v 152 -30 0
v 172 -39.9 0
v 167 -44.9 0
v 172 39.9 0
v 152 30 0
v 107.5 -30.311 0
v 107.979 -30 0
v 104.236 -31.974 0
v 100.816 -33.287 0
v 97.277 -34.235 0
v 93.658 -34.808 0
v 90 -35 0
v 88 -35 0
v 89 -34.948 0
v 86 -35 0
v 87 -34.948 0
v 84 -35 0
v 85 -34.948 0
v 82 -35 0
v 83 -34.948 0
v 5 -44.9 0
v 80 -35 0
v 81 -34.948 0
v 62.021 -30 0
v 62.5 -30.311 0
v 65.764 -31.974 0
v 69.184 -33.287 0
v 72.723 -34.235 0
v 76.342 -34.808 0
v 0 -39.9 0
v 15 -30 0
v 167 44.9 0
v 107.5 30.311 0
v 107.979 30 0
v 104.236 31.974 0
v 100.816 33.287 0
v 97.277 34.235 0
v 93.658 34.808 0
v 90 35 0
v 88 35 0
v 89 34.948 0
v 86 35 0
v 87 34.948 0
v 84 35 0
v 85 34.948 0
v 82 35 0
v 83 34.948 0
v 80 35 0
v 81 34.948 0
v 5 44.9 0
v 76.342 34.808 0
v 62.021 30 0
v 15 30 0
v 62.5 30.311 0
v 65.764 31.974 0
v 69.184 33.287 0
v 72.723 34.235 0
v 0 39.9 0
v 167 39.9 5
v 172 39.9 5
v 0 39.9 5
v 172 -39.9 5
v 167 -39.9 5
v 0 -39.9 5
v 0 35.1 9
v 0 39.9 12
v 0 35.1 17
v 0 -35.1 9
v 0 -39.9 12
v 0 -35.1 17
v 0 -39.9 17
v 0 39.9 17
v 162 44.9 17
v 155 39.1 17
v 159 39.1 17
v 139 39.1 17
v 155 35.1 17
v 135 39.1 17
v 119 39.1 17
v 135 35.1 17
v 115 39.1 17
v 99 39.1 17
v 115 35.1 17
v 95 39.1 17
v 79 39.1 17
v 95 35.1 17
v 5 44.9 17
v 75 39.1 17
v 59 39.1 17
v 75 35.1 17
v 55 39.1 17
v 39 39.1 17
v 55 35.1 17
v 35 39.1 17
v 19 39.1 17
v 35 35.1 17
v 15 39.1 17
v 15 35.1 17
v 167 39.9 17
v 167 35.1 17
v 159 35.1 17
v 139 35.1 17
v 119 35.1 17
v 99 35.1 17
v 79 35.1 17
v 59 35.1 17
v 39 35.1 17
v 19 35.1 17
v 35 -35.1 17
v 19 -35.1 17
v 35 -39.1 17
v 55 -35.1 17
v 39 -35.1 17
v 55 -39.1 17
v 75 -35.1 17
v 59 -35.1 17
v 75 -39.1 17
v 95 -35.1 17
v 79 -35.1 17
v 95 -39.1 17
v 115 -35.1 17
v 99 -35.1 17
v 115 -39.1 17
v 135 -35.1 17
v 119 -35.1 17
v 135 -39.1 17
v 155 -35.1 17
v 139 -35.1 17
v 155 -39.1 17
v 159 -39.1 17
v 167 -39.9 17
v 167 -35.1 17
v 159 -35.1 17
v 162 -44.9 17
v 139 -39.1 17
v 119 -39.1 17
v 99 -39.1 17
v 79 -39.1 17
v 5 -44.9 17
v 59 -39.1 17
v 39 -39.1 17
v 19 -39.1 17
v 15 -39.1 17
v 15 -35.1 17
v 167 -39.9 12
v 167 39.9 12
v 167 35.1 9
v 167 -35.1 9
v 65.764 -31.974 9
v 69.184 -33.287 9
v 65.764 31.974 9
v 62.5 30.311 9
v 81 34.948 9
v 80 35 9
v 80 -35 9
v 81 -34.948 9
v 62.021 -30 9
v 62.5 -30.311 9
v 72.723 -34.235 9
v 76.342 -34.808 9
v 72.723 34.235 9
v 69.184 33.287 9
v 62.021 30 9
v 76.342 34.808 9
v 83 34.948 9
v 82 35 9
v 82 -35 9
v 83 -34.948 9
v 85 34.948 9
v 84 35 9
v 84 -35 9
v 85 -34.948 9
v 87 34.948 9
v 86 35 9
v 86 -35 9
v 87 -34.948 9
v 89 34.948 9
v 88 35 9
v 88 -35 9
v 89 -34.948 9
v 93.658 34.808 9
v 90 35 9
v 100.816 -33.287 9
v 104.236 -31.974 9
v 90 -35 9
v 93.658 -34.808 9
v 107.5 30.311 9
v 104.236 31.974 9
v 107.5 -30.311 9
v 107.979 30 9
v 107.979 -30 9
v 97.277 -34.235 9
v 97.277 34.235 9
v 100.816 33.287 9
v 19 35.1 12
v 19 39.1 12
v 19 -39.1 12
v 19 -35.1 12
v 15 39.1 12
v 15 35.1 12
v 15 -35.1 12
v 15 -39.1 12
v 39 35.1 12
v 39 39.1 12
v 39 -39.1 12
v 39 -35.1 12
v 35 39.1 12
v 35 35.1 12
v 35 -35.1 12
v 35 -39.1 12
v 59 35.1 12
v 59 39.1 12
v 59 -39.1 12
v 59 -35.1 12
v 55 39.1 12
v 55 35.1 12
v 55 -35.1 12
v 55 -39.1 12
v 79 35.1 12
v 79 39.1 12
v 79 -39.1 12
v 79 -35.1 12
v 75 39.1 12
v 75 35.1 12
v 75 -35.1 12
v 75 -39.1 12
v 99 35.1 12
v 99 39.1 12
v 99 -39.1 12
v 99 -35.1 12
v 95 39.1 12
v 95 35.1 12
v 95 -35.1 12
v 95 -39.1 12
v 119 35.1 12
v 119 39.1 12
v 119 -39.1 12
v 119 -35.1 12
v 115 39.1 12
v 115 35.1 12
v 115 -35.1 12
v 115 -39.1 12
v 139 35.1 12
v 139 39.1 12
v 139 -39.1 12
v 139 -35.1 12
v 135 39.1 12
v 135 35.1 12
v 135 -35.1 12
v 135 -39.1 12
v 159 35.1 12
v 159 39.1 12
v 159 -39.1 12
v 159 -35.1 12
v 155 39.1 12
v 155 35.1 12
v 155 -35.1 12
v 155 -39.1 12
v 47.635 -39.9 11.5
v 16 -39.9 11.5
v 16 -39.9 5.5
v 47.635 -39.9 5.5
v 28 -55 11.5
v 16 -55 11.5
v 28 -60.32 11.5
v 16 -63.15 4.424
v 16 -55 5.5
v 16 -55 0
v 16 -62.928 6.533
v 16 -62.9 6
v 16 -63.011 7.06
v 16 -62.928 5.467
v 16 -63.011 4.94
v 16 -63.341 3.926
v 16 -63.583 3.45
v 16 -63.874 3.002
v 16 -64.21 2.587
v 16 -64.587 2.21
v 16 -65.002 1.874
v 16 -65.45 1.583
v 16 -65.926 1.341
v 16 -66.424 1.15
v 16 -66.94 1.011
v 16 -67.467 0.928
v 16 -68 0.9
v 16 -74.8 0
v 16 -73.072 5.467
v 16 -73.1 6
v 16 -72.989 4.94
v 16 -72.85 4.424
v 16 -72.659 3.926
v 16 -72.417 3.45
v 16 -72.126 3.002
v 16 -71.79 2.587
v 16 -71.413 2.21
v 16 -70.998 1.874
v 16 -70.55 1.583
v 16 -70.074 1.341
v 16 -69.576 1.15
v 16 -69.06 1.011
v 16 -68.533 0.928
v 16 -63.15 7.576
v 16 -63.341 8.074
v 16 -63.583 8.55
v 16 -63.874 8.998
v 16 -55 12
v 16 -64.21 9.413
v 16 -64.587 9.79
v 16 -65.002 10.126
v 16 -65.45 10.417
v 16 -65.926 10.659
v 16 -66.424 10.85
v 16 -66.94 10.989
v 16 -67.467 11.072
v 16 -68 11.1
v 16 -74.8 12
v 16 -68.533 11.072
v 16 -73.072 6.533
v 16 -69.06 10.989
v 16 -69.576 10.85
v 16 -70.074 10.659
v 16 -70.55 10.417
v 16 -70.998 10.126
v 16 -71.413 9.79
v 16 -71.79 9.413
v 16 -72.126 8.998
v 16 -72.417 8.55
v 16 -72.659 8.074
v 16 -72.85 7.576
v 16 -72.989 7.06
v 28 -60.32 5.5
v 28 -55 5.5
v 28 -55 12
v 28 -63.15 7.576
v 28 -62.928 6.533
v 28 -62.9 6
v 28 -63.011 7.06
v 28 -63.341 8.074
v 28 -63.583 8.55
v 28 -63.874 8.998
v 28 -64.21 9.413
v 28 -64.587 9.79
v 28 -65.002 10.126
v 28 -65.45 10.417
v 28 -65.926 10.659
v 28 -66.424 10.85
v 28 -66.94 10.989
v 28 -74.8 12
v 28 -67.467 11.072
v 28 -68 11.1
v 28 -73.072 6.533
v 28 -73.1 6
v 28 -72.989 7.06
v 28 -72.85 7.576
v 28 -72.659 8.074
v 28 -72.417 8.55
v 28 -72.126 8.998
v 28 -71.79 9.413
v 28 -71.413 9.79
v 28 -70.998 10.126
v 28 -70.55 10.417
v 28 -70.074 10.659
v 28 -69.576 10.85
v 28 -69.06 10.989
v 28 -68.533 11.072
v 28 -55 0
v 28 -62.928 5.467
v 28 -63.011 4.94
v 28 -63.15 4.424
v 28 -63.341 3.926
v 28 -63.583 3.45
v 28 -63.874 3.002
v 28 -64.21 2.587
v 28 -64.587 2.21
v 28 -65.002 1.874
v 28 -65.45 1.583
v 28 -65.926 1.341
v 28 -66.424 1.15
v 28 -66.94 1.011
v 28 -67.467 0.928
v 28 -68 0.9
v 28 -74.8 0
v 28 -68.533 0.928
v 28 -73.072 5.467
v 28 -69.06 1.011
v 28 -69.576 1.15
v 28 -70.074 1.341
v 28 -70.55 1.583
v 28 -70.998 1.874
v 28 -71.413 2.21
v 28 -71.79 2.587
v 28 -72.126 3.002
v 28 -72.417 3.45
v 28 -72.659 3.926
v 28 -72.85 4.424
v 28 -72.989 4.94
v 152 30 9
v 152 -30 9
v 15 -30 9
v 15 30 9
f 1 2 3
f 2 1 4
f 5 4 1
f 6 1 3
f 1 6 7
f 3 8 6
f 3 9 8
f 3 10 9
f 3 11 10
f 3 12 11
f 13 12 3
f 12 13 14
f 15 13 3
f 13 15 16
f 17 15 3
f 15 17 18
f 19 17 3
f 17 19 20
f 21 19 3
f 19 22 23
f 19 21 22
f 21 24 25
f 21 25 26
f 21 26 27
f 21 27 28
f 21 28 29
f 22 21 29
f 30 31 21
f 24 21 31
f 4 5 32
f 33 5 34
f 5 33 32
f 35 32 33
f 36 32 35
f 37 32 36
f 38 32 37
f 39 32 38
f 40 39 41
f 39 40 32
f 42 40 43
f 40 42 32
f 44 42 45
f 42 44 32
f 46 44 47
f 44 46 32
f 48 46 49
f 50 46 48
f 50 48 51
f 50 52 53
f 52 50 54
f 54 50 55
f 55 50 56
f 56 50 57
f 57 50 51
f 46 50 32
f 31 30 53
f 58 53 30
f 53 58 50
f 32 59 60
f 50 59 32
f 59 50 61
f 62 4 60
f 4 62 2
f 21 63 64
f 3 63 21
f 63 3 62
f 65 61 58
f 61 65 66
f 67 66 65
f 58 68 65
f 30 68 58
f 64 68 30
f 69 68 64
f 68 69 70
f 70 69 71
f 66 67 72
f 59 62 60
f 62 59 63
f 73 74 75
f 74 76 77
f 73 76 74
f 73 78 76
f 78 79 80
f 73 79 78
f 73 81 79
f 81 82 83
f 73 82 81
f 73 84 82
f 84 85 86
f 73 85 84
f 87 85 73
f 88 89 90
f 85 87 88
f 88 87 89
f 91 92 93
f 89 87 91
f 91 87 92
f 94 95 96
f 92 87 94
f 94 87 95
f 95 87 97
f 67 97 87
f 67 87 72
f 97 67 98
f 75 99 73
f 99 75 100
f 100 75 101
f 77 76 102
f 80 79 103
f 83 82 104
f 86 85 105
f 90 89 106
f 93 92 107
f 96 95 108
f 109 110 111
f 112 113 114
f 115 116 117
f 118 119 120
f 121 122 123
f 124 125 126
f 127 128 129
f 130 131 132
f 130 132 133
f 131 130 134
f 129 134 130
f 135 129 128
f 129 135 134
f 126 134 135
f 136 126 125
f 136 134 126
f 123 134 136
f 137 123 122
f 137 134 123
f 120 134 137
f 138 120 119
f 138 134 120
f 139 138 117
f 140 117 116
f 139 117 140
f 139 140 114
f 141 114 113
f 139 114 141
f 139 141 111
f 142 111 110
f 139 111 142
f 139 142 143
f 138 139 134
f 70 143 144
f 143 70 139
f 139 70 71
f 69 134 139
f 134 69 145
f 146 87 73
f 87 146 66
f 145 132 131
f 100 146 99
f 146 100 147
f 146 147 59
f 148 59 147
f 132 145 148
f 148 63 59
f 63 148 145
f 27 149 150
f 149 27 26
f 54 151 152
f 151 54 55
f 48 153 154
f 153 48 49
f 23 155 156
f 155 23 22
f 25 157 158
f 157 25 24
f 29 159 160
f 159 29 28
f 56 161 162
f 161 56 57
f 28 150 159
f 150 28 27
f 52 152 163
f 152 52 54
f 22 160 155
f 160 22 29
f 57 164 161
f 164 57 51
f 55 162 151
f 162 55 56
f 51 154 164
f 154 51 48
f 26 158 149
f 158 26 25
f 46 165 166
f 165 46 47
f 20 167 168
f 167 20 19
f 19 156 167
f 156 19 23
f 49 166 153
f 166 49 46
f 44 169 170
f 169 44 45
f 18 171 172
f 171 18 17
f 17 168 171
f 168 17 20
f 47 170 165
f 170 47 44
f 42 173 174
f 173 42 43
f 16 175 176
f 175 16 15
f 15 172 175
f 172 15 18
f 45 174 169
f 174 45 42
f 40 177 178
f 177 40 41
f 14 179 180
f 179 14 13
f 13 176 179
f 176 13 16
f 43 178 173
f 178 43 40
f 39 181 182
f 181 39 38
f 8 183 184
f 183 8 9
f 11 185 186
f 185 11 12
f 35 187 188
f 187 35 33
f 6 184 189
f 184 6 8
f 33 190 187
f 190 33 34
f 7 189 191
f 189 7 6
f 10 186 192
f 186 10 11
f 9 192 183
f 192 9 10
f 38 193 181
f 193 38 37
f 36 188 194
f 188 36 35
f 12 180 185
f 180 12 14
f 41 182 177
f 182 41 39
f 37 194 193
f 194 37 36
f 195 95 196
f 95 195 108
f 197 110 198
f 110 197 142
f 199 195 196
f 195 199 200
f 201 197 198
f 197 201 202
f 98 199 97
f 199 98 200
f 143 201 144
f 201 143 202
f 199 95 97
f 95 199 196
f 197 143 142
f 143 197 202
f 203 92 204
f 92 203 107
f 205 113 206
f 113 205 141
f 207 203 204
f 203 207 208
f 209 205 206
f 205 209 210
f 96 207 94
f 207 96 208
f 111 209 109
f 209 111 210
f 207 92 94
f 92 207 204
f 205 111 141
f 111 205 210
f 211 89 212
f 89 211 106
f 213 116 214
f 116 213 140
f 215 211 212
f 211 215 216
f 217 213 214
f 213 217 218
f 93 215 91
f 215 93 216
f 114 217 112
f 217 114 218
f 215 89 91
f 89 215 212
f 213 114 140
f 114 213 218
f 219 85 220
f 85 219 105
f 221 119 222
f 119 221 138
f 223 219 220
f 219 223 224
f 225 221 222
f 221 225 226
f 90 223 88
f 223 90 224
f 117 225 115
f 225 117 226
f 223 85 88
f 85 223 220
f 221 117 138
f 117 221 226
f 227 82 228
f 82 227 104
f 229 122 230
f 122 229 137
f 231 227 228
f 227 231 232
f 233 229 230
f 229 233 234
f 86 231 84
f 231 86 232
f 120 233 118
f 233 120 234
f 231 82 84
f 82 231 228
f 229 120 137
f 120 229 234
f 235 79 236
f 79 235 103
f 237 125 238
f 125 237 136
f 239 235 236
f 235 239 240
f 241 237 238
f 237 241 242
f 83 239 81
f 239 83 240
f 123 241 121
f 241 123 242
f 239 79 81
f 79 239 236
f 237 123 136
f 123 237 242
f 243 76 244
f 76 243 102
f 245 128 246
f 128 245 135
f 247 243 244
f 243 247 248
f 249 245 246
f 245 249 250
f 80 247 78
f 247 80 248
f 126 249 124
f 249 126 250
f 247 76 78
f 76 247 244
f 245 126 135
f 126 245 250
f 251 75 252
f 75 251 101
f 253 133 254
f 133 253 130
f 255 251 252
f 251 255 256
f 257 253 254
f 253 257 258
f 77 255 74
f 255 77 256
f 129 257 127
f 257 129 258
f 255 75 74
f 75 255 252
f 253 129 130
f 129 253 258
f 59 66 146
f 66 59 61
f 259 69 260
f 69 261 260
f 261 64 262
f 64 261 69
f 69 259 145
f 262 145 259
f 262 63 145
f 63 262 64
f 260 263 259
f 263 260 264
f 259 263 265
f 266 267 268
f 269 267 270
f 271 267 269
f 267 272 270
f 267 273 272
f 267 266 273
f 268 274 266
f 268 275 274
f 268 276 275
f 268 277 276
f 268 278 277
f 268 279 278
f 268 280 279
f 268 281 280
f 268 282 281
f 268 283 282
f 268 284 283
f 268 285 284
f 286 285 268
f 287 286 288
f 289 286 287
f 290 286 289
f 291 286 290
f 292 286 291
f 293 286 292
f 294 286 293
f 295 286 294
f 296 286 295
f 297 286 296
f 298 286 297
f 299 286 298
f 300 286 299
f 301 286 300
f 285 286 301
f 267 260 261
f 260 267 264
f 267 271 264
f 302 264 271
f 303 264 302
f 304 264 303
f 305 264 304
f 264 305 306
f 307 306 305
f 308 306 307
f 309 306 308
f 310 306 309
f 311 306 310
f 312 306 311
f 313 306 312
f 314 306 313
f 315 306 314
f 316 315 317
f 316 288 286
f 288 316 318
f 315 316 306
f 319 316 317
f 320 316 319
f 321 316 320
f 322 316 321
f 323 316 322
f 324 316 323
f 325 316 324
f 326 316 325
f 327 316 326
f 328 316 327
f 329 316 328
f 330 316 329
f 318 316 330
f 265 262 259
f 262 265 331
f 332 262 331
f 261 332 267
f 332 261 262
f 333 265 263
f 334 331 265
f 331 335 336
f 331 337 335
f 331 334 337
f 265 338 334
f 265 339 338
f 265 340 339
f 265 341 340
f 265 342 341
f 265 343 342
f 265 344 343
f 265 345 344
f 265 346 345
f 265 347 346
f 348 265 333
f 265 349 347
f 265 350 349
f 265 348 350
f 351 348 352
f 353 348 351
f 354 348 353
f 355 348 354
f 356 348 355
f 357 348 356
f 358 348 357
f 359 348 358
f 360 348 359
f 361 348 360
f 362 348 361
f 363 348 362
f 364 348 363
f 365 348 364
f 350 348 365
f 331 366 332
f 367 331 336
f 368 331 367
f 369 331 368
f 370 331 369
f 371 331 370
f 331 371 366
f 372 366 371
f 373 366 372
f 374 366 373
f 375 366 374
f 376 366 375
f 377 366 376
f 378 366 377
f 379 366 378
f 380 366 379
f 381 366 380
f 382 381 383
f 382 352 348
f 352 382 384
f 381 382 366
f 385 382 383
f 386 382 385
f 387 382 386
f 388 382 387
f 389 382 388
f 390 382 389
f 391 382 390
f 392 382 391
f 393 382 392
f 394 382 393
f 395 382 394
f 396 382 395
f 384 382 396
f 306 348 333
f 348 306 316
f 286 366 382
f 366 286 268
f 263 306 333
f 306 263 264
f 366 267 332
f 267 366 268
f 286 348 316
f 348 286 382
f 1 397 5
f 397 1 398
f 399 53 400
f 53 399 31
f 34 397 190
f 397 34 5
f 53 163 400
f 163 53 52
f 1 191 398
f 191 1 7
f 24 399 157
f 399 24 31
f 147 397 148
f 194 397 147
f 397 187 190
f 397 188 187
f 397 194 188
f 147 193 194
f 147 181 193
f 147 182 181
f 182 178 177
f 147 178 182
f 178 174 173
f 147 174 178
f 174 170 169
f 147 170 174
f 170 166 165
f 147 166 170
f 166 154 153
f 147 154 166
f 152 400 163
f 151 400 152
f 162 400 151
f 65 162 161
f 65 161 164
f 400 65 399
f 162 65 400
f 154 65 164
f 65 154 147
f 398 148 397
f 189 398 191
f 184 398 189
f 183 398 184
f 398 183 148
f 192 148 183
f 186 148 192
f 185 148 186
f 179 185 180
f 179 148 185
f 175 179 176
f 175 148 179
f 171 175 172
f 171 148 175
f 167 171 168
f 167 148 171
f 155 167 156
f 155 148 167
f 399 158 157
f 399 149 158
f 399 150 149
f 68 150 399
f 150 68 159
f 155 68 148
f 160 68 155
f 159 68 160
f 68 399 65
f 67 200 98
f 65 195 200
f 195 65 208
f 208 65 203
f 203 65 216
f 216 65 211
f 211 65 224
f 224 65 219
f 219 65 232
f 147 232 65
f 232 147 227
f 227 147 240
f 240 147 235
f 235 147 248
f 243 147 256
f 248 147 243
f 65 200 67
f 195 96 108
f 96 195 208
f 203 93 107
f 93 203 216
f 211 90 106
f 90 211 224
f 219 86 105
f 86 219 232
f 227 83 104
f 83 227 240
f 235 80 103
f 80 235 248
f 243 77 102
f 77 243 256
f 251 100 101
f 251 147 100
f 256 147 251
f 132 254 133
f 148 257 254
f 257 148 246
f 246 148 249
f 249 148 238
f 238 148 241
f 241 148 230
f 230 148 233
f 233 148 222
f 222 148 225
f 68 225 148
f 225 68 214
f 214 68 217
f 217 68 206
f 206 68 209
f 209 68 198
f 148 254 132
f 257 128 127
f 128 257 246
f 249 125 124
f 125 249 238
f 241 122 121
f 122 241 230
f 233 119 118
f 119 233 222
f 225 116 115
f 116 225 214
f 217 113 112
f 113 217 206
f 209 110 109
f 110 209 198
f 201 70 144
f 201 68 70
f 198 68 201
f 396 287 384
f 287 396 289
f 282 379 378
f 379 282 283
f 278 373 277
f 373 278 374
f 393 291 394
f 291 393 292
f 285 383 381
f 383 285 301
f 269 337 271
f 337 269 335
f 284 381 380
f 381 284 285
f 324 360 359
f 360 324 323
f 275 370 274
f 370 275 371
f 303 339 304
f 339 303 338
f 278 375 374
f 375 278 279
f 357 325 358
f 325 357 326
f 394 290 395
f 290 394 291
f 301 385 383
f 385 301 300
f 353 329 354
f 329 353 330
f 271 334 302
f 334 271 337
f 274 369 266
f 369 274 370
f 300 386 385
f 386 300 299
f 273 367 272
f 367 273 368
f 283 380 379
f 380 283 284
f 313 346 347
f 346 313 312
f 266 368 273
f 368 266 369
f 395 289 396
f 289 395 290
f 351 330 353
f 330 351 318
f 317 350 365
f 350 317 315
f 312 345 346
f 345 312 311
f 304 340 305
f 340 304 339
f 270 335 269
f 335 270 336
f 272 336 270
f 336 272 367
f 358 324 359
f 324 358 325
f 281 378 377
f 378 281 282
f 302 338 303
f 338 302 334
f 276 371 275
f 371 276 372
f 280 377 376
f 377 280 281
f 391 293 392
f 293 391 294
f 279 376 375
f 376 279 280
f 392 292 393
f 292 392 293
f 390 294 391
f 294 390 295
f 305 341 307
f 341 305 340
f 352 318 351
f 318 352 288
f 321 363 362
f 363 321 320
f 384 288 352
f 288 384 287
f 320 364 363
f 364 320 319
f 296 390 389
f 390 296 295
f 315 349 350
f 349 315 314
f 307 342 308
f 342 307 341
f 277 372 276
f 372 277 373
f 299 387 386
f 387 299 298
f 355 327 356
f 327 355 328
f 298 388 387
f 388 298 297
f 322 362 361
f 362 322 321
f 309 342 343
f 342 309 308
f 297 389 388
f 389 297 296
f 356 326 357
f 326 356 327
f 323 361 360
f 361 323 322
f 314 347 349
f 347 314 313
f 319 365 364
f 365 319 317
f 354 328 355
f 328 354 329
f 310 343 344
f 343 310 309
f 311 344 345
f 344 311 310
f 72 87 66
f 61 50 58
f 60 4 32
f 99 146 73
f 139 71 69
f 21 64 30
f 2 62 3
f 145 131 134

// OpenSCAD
// some variables
$fn = 60; // we are using 60 fragments for cylinders and similar objects

module roof(l, w, h){
    polyhedron(
        points=[
            [0,0,0],
            [l,0,0],
            [l,w,0],
            [0,w,0],
            [0,w/2,h],
            [l,w/2,h]
            ],
        faces=[
            [0,1,2,3],
            [0,4,1],
            [1,4,5,2],
            [2,5,3],
            [3,5,4,0]
            ]
            );
    };

module wedge(l, w, h) {
    polyhedron(
            points=[
                [0,0,0],
                [l,0,0],
                [l,w,0],
                [0,w,0],
                [0,0,h],
                [l,0,h]
            ],
            faces=[
                [0,3,2,1],
                [0,1,5,4],
                [1,2,5],
                [2,3,4,5],
                [3,0,4]
            ]
    );
   };    

module tube(d1, d2, h) {
    difference() {
        cylinder(d=d1, h=h);
        cylinder(d=d2, h=h);
        };
    };

module countersunk_screw(vScrew_d, vScrew_l){
    union(){
    cylinder(d=vScrew_d, h= vScrew_l);
    cylinder(d1=vScrew_d*2, h=vScrew_d);
    };
};
    
    


vTolerance = 0.2;    
vRailTolerance = 0.2;
    
vLowerRail_l = 172;
vLowerRailOuter_w = 90-vRailTolerance;
vLowerRailInner_w = 80-vRailTolerance;
vLowerRail_h = 5;
vLowerRail_offsetX = 0;
vLowerRail_offsetY = -vLowerRailOuter_w/2;
vLowerRail_offsetZ = 0;

vUpperRail_l = 167;
vUpperRailOuter_w = vLowerRailOuter_w;
vUpperRail_h = vLowerRail_h;
vUpperRail_offsetX = 0;
vUpperRail_offsetY = -(vUpperRailOuter_w/2);
vUpperRail_offsetZ = 0;

vMidSection_h = 7;

vUpperBlock_l = vUpperRail_l;
vUpperBlock_w = vLowerRailInner_w;
vUpperBlock_h = vUpperRail_h + vMidSection_h;
vUpperBlock_offsetX = 0;
vUpperBlock_offsetY = -vUpperBlock_w/2;
vUpperBlock_offsetZ = vLowerRail_h;

vMidCutout_l = vUpperRail_l-30;
vMidCutout_w = 60;
vMidCutout_h = vLowerRail_h+vUpperBlock_h;
vMidCutout_offsetX = 15;
vMidCutout_offsetY = -vMidCutout_w/2;
vMidCutout_offsetZ = 0;

vUpperCutout_l = vUpperRail_l;
vUpperCutout_w = 70+vRailTolerance;
vUpperCutout_h = vMidSection_h+1;
vUpperCutout_offsetX = 0;
vUpperCutout_offsetY = -vUpperCutout_w/2;
vUpperCutout_offsetZ = vMidCutout_h-vUpperCutout_h;

vLensCutout_d = 70;
vLensCutout_h = vLowerRail_h+vUpperBlock_h;
vLensCutout_offsetX = 80;
vLensCutout_offsetY = 0;
vLensCutout_offsetZ = 0;

// cutout for stop indents
vStopIndent_l = 4;
vStopIndent_w = vUpperCutout_w + (2*vStopIndent_l);
vStopIndent_h = 5;
vStopIndentDistance = 20;
vStopIndentCount = floor(vUpperRail_l/vStopIndentDistance);
vStopIndent_offsetX = 15;
vStopIndent_offsetY = -vStopIndent_w/2;
vStopIndent_offsetZ = vLowerRail_h+vMidSection_h+vUpperRail_h-vStopIndent_h;

vFocusingLever_l = 70;
vFocusingLever_w = 75-vTolerance;
vFocusingLever_h = vMidSection_h-1;
vFocusingLever_offsetX = 16;
vFocusingLever_offsetY = 0;
vFocusingLever_offsetZ = vLowerRail_h + vFocusingLever_h + 0.5;

vFocusingThreadBlock_l = 12;
vFocusingThreadBlock_w = 20-vTolerance;
vFocusingThreadBlock_h = 12;
vFocusingThreadBlock_offsetX = vFocusingLever_offsetX;
vFocusingThreadBlock_offsetY = -vFocusingLever_w;
vFocusingThreadBlock_offsetZ = 0;

vFocusingThreadHole_d = 10.2;
vFocusingThreadHole_h = vFocusingLever_l;
vFocusingThreadHole_offsetX = vFocusingLever_offsetX;
vFocusingThreadHole_offsetY = -68;
//vFocusingThreadHole_offsetZ = vFocusingThreadBlock_h/2;
vFocusingThreadHole_offsetZ = 6;


vEdgeCutoff = 5;
vEdgeCutoff_h = vLowerRail_h+vMidSection_h+vUpperRail_h;


difference(){
union(){
    // lower rail
    difference(){
        translate([vLowerRail_offsetX, vLowerRail_offsetY, vLowerRail_offsetZ])
            roof(vLowerRail_l, vLowerRailOuter_w, vLowerRailOuter_w/2);
        translate([vLowerRail_offsetX, vLowerRail_offsetY, vLowerRail_h])
            cube([vLowerRail_l, vLowerRailOuter_w, vLowerRailOuter_w/2]);    
    };

    // upper block
    translate([vUpperBlock_offsetX, vUpperBlock_offsetY, vUpperBlock_offsetZ])
            cube([vUpperBlock_l, vUpperBlock_w, vUpperBlock_h]);    
    
    // focusing lever
    translate([vFocusingLever_offsetX, vFocusingLever_offsetY, vFocusingLever_offsetZ])
        rotate([0, 90, 0])
            wedge(vFocusingLever_h, -vFocusingLever_w+2, vFocusingLever_l);
    
    
    // focusing lever thread block
    translate([vFocusingThreadBlock_offsetX, vFocusingThreadBlock_offsetY, vFocusingThreadBlock_offsetZ])
                cube([vFocusingThreadBlock_l, vFocusingThreadBlock_w, vFocusingThreadBlock_h]);
        
        
    // lower rail
    translate([0,0,vLowerRail_h+vUpperBlock_h])
        mirror([0,0,1]){
            difference(){
                translate([vUpperRail_offsetX, vUpperRail_offsetY, vUpperRail_offsetZ])
                    roof(vUpperRail_l, vUpperRailOuter_w, vUpperRailOuter_w/2);
                translate([vUpperRail_offsetX, vUpperRail_offsetY, vUpperRail_h])
                    cube([vUpperRail_l, vUpperRailOuter_w, vUpperRailOuter_w/2]);    
            };
        };

    };
    
    // mid cutout
    translate([vMidCutout_offsetX, vMidCutout_offsetY, vMidCutout_offsetZ])
        cube([vMidCutout_l, vMidCutout_w, vMidCutout_h]); 
 
    // upper cutout
    translate([vUpperCutout_offsetX, vUpperCutout_offsetY, vUpperCutout_offsetZ])
        cube([vUpperCutout_l, vUpperCutout_w, vUpperCutout_h]); 
    for (i = [0:5]){ 
    // lens cutout
    translate([vLensCutout_offsetX+(i*2), vLensCutout_offsetY, vLensCutout_offsetZ])
        cylinder(d=vLensCutout_d, h=vLensCutout_h);
    };
    
    // stop indents
    for (i=[0:vStopIndentCount]){
    translate([i*vStopIndentDistance+vStopIndent_offsetX, vStopIndent_offsetY, vStopIndent_offsetZ])
        cube([vStopIndent_l, vStopIndent_w, vStopIndent_h]);        
    };

    // focusing thread hole
    translate([vFocusingThreadHole_offsetX, vFocusingThreadHole_offsetY, vFocusingThreadHole_offsetZ])
        rotate([0, 90, 0])
            cylinder(d=vFocusingThreadHole_d, h=vFocusingThreadHole_h);
    
    // edge cutoff
    // back left
    translate([0, -vLowerRail_offsetY, 0])
        rotate([0, -90, 0])
            wedge(vEdgeCutoff_h, -vEdgeCutoff, -vEdgeCutoff);
    // lower front left
    translate([vLowerRail_l, -vLowerRail_offsetY, 0])
        rotate([0, -90, 0])
            wedge(vEdgeCutoff_h, -vEdgeCutoff, vEdgeCutoff);
    // upper front left
    translate([vUpperRail_l, -vLowerRail_offsetY, vLowerRail_h])
        rotate([0, -90, 0])
            wedge(vEdgeCutoff_h, -vEdgeCutoff, vEdgeCutoff);
    // back right
    translate([0, vLowerRail_offsetY, 0])
        rotate([0, -90, 0])
            wedge(vEdgeCutoff_h, vEdgeCutoff, -vEdgeCutoff);
    // lower front right
    translate([vLowerRail_l, vLowerRail_offsetY, 0])
        rotate([0, -90, 0])
            wedge(vEdgeCutoff_h, vEdgeCutoff, vEdgeCutoff);
    // upper front right
    translate([vUpperRail_l, vLowerRail_offsetY, vLowerRail_h])
        rotate([0, -90, 0])
            wedge(vEdgeCutoff_h, vEdgeCutoff, vEdgeCutoff);
    
};
